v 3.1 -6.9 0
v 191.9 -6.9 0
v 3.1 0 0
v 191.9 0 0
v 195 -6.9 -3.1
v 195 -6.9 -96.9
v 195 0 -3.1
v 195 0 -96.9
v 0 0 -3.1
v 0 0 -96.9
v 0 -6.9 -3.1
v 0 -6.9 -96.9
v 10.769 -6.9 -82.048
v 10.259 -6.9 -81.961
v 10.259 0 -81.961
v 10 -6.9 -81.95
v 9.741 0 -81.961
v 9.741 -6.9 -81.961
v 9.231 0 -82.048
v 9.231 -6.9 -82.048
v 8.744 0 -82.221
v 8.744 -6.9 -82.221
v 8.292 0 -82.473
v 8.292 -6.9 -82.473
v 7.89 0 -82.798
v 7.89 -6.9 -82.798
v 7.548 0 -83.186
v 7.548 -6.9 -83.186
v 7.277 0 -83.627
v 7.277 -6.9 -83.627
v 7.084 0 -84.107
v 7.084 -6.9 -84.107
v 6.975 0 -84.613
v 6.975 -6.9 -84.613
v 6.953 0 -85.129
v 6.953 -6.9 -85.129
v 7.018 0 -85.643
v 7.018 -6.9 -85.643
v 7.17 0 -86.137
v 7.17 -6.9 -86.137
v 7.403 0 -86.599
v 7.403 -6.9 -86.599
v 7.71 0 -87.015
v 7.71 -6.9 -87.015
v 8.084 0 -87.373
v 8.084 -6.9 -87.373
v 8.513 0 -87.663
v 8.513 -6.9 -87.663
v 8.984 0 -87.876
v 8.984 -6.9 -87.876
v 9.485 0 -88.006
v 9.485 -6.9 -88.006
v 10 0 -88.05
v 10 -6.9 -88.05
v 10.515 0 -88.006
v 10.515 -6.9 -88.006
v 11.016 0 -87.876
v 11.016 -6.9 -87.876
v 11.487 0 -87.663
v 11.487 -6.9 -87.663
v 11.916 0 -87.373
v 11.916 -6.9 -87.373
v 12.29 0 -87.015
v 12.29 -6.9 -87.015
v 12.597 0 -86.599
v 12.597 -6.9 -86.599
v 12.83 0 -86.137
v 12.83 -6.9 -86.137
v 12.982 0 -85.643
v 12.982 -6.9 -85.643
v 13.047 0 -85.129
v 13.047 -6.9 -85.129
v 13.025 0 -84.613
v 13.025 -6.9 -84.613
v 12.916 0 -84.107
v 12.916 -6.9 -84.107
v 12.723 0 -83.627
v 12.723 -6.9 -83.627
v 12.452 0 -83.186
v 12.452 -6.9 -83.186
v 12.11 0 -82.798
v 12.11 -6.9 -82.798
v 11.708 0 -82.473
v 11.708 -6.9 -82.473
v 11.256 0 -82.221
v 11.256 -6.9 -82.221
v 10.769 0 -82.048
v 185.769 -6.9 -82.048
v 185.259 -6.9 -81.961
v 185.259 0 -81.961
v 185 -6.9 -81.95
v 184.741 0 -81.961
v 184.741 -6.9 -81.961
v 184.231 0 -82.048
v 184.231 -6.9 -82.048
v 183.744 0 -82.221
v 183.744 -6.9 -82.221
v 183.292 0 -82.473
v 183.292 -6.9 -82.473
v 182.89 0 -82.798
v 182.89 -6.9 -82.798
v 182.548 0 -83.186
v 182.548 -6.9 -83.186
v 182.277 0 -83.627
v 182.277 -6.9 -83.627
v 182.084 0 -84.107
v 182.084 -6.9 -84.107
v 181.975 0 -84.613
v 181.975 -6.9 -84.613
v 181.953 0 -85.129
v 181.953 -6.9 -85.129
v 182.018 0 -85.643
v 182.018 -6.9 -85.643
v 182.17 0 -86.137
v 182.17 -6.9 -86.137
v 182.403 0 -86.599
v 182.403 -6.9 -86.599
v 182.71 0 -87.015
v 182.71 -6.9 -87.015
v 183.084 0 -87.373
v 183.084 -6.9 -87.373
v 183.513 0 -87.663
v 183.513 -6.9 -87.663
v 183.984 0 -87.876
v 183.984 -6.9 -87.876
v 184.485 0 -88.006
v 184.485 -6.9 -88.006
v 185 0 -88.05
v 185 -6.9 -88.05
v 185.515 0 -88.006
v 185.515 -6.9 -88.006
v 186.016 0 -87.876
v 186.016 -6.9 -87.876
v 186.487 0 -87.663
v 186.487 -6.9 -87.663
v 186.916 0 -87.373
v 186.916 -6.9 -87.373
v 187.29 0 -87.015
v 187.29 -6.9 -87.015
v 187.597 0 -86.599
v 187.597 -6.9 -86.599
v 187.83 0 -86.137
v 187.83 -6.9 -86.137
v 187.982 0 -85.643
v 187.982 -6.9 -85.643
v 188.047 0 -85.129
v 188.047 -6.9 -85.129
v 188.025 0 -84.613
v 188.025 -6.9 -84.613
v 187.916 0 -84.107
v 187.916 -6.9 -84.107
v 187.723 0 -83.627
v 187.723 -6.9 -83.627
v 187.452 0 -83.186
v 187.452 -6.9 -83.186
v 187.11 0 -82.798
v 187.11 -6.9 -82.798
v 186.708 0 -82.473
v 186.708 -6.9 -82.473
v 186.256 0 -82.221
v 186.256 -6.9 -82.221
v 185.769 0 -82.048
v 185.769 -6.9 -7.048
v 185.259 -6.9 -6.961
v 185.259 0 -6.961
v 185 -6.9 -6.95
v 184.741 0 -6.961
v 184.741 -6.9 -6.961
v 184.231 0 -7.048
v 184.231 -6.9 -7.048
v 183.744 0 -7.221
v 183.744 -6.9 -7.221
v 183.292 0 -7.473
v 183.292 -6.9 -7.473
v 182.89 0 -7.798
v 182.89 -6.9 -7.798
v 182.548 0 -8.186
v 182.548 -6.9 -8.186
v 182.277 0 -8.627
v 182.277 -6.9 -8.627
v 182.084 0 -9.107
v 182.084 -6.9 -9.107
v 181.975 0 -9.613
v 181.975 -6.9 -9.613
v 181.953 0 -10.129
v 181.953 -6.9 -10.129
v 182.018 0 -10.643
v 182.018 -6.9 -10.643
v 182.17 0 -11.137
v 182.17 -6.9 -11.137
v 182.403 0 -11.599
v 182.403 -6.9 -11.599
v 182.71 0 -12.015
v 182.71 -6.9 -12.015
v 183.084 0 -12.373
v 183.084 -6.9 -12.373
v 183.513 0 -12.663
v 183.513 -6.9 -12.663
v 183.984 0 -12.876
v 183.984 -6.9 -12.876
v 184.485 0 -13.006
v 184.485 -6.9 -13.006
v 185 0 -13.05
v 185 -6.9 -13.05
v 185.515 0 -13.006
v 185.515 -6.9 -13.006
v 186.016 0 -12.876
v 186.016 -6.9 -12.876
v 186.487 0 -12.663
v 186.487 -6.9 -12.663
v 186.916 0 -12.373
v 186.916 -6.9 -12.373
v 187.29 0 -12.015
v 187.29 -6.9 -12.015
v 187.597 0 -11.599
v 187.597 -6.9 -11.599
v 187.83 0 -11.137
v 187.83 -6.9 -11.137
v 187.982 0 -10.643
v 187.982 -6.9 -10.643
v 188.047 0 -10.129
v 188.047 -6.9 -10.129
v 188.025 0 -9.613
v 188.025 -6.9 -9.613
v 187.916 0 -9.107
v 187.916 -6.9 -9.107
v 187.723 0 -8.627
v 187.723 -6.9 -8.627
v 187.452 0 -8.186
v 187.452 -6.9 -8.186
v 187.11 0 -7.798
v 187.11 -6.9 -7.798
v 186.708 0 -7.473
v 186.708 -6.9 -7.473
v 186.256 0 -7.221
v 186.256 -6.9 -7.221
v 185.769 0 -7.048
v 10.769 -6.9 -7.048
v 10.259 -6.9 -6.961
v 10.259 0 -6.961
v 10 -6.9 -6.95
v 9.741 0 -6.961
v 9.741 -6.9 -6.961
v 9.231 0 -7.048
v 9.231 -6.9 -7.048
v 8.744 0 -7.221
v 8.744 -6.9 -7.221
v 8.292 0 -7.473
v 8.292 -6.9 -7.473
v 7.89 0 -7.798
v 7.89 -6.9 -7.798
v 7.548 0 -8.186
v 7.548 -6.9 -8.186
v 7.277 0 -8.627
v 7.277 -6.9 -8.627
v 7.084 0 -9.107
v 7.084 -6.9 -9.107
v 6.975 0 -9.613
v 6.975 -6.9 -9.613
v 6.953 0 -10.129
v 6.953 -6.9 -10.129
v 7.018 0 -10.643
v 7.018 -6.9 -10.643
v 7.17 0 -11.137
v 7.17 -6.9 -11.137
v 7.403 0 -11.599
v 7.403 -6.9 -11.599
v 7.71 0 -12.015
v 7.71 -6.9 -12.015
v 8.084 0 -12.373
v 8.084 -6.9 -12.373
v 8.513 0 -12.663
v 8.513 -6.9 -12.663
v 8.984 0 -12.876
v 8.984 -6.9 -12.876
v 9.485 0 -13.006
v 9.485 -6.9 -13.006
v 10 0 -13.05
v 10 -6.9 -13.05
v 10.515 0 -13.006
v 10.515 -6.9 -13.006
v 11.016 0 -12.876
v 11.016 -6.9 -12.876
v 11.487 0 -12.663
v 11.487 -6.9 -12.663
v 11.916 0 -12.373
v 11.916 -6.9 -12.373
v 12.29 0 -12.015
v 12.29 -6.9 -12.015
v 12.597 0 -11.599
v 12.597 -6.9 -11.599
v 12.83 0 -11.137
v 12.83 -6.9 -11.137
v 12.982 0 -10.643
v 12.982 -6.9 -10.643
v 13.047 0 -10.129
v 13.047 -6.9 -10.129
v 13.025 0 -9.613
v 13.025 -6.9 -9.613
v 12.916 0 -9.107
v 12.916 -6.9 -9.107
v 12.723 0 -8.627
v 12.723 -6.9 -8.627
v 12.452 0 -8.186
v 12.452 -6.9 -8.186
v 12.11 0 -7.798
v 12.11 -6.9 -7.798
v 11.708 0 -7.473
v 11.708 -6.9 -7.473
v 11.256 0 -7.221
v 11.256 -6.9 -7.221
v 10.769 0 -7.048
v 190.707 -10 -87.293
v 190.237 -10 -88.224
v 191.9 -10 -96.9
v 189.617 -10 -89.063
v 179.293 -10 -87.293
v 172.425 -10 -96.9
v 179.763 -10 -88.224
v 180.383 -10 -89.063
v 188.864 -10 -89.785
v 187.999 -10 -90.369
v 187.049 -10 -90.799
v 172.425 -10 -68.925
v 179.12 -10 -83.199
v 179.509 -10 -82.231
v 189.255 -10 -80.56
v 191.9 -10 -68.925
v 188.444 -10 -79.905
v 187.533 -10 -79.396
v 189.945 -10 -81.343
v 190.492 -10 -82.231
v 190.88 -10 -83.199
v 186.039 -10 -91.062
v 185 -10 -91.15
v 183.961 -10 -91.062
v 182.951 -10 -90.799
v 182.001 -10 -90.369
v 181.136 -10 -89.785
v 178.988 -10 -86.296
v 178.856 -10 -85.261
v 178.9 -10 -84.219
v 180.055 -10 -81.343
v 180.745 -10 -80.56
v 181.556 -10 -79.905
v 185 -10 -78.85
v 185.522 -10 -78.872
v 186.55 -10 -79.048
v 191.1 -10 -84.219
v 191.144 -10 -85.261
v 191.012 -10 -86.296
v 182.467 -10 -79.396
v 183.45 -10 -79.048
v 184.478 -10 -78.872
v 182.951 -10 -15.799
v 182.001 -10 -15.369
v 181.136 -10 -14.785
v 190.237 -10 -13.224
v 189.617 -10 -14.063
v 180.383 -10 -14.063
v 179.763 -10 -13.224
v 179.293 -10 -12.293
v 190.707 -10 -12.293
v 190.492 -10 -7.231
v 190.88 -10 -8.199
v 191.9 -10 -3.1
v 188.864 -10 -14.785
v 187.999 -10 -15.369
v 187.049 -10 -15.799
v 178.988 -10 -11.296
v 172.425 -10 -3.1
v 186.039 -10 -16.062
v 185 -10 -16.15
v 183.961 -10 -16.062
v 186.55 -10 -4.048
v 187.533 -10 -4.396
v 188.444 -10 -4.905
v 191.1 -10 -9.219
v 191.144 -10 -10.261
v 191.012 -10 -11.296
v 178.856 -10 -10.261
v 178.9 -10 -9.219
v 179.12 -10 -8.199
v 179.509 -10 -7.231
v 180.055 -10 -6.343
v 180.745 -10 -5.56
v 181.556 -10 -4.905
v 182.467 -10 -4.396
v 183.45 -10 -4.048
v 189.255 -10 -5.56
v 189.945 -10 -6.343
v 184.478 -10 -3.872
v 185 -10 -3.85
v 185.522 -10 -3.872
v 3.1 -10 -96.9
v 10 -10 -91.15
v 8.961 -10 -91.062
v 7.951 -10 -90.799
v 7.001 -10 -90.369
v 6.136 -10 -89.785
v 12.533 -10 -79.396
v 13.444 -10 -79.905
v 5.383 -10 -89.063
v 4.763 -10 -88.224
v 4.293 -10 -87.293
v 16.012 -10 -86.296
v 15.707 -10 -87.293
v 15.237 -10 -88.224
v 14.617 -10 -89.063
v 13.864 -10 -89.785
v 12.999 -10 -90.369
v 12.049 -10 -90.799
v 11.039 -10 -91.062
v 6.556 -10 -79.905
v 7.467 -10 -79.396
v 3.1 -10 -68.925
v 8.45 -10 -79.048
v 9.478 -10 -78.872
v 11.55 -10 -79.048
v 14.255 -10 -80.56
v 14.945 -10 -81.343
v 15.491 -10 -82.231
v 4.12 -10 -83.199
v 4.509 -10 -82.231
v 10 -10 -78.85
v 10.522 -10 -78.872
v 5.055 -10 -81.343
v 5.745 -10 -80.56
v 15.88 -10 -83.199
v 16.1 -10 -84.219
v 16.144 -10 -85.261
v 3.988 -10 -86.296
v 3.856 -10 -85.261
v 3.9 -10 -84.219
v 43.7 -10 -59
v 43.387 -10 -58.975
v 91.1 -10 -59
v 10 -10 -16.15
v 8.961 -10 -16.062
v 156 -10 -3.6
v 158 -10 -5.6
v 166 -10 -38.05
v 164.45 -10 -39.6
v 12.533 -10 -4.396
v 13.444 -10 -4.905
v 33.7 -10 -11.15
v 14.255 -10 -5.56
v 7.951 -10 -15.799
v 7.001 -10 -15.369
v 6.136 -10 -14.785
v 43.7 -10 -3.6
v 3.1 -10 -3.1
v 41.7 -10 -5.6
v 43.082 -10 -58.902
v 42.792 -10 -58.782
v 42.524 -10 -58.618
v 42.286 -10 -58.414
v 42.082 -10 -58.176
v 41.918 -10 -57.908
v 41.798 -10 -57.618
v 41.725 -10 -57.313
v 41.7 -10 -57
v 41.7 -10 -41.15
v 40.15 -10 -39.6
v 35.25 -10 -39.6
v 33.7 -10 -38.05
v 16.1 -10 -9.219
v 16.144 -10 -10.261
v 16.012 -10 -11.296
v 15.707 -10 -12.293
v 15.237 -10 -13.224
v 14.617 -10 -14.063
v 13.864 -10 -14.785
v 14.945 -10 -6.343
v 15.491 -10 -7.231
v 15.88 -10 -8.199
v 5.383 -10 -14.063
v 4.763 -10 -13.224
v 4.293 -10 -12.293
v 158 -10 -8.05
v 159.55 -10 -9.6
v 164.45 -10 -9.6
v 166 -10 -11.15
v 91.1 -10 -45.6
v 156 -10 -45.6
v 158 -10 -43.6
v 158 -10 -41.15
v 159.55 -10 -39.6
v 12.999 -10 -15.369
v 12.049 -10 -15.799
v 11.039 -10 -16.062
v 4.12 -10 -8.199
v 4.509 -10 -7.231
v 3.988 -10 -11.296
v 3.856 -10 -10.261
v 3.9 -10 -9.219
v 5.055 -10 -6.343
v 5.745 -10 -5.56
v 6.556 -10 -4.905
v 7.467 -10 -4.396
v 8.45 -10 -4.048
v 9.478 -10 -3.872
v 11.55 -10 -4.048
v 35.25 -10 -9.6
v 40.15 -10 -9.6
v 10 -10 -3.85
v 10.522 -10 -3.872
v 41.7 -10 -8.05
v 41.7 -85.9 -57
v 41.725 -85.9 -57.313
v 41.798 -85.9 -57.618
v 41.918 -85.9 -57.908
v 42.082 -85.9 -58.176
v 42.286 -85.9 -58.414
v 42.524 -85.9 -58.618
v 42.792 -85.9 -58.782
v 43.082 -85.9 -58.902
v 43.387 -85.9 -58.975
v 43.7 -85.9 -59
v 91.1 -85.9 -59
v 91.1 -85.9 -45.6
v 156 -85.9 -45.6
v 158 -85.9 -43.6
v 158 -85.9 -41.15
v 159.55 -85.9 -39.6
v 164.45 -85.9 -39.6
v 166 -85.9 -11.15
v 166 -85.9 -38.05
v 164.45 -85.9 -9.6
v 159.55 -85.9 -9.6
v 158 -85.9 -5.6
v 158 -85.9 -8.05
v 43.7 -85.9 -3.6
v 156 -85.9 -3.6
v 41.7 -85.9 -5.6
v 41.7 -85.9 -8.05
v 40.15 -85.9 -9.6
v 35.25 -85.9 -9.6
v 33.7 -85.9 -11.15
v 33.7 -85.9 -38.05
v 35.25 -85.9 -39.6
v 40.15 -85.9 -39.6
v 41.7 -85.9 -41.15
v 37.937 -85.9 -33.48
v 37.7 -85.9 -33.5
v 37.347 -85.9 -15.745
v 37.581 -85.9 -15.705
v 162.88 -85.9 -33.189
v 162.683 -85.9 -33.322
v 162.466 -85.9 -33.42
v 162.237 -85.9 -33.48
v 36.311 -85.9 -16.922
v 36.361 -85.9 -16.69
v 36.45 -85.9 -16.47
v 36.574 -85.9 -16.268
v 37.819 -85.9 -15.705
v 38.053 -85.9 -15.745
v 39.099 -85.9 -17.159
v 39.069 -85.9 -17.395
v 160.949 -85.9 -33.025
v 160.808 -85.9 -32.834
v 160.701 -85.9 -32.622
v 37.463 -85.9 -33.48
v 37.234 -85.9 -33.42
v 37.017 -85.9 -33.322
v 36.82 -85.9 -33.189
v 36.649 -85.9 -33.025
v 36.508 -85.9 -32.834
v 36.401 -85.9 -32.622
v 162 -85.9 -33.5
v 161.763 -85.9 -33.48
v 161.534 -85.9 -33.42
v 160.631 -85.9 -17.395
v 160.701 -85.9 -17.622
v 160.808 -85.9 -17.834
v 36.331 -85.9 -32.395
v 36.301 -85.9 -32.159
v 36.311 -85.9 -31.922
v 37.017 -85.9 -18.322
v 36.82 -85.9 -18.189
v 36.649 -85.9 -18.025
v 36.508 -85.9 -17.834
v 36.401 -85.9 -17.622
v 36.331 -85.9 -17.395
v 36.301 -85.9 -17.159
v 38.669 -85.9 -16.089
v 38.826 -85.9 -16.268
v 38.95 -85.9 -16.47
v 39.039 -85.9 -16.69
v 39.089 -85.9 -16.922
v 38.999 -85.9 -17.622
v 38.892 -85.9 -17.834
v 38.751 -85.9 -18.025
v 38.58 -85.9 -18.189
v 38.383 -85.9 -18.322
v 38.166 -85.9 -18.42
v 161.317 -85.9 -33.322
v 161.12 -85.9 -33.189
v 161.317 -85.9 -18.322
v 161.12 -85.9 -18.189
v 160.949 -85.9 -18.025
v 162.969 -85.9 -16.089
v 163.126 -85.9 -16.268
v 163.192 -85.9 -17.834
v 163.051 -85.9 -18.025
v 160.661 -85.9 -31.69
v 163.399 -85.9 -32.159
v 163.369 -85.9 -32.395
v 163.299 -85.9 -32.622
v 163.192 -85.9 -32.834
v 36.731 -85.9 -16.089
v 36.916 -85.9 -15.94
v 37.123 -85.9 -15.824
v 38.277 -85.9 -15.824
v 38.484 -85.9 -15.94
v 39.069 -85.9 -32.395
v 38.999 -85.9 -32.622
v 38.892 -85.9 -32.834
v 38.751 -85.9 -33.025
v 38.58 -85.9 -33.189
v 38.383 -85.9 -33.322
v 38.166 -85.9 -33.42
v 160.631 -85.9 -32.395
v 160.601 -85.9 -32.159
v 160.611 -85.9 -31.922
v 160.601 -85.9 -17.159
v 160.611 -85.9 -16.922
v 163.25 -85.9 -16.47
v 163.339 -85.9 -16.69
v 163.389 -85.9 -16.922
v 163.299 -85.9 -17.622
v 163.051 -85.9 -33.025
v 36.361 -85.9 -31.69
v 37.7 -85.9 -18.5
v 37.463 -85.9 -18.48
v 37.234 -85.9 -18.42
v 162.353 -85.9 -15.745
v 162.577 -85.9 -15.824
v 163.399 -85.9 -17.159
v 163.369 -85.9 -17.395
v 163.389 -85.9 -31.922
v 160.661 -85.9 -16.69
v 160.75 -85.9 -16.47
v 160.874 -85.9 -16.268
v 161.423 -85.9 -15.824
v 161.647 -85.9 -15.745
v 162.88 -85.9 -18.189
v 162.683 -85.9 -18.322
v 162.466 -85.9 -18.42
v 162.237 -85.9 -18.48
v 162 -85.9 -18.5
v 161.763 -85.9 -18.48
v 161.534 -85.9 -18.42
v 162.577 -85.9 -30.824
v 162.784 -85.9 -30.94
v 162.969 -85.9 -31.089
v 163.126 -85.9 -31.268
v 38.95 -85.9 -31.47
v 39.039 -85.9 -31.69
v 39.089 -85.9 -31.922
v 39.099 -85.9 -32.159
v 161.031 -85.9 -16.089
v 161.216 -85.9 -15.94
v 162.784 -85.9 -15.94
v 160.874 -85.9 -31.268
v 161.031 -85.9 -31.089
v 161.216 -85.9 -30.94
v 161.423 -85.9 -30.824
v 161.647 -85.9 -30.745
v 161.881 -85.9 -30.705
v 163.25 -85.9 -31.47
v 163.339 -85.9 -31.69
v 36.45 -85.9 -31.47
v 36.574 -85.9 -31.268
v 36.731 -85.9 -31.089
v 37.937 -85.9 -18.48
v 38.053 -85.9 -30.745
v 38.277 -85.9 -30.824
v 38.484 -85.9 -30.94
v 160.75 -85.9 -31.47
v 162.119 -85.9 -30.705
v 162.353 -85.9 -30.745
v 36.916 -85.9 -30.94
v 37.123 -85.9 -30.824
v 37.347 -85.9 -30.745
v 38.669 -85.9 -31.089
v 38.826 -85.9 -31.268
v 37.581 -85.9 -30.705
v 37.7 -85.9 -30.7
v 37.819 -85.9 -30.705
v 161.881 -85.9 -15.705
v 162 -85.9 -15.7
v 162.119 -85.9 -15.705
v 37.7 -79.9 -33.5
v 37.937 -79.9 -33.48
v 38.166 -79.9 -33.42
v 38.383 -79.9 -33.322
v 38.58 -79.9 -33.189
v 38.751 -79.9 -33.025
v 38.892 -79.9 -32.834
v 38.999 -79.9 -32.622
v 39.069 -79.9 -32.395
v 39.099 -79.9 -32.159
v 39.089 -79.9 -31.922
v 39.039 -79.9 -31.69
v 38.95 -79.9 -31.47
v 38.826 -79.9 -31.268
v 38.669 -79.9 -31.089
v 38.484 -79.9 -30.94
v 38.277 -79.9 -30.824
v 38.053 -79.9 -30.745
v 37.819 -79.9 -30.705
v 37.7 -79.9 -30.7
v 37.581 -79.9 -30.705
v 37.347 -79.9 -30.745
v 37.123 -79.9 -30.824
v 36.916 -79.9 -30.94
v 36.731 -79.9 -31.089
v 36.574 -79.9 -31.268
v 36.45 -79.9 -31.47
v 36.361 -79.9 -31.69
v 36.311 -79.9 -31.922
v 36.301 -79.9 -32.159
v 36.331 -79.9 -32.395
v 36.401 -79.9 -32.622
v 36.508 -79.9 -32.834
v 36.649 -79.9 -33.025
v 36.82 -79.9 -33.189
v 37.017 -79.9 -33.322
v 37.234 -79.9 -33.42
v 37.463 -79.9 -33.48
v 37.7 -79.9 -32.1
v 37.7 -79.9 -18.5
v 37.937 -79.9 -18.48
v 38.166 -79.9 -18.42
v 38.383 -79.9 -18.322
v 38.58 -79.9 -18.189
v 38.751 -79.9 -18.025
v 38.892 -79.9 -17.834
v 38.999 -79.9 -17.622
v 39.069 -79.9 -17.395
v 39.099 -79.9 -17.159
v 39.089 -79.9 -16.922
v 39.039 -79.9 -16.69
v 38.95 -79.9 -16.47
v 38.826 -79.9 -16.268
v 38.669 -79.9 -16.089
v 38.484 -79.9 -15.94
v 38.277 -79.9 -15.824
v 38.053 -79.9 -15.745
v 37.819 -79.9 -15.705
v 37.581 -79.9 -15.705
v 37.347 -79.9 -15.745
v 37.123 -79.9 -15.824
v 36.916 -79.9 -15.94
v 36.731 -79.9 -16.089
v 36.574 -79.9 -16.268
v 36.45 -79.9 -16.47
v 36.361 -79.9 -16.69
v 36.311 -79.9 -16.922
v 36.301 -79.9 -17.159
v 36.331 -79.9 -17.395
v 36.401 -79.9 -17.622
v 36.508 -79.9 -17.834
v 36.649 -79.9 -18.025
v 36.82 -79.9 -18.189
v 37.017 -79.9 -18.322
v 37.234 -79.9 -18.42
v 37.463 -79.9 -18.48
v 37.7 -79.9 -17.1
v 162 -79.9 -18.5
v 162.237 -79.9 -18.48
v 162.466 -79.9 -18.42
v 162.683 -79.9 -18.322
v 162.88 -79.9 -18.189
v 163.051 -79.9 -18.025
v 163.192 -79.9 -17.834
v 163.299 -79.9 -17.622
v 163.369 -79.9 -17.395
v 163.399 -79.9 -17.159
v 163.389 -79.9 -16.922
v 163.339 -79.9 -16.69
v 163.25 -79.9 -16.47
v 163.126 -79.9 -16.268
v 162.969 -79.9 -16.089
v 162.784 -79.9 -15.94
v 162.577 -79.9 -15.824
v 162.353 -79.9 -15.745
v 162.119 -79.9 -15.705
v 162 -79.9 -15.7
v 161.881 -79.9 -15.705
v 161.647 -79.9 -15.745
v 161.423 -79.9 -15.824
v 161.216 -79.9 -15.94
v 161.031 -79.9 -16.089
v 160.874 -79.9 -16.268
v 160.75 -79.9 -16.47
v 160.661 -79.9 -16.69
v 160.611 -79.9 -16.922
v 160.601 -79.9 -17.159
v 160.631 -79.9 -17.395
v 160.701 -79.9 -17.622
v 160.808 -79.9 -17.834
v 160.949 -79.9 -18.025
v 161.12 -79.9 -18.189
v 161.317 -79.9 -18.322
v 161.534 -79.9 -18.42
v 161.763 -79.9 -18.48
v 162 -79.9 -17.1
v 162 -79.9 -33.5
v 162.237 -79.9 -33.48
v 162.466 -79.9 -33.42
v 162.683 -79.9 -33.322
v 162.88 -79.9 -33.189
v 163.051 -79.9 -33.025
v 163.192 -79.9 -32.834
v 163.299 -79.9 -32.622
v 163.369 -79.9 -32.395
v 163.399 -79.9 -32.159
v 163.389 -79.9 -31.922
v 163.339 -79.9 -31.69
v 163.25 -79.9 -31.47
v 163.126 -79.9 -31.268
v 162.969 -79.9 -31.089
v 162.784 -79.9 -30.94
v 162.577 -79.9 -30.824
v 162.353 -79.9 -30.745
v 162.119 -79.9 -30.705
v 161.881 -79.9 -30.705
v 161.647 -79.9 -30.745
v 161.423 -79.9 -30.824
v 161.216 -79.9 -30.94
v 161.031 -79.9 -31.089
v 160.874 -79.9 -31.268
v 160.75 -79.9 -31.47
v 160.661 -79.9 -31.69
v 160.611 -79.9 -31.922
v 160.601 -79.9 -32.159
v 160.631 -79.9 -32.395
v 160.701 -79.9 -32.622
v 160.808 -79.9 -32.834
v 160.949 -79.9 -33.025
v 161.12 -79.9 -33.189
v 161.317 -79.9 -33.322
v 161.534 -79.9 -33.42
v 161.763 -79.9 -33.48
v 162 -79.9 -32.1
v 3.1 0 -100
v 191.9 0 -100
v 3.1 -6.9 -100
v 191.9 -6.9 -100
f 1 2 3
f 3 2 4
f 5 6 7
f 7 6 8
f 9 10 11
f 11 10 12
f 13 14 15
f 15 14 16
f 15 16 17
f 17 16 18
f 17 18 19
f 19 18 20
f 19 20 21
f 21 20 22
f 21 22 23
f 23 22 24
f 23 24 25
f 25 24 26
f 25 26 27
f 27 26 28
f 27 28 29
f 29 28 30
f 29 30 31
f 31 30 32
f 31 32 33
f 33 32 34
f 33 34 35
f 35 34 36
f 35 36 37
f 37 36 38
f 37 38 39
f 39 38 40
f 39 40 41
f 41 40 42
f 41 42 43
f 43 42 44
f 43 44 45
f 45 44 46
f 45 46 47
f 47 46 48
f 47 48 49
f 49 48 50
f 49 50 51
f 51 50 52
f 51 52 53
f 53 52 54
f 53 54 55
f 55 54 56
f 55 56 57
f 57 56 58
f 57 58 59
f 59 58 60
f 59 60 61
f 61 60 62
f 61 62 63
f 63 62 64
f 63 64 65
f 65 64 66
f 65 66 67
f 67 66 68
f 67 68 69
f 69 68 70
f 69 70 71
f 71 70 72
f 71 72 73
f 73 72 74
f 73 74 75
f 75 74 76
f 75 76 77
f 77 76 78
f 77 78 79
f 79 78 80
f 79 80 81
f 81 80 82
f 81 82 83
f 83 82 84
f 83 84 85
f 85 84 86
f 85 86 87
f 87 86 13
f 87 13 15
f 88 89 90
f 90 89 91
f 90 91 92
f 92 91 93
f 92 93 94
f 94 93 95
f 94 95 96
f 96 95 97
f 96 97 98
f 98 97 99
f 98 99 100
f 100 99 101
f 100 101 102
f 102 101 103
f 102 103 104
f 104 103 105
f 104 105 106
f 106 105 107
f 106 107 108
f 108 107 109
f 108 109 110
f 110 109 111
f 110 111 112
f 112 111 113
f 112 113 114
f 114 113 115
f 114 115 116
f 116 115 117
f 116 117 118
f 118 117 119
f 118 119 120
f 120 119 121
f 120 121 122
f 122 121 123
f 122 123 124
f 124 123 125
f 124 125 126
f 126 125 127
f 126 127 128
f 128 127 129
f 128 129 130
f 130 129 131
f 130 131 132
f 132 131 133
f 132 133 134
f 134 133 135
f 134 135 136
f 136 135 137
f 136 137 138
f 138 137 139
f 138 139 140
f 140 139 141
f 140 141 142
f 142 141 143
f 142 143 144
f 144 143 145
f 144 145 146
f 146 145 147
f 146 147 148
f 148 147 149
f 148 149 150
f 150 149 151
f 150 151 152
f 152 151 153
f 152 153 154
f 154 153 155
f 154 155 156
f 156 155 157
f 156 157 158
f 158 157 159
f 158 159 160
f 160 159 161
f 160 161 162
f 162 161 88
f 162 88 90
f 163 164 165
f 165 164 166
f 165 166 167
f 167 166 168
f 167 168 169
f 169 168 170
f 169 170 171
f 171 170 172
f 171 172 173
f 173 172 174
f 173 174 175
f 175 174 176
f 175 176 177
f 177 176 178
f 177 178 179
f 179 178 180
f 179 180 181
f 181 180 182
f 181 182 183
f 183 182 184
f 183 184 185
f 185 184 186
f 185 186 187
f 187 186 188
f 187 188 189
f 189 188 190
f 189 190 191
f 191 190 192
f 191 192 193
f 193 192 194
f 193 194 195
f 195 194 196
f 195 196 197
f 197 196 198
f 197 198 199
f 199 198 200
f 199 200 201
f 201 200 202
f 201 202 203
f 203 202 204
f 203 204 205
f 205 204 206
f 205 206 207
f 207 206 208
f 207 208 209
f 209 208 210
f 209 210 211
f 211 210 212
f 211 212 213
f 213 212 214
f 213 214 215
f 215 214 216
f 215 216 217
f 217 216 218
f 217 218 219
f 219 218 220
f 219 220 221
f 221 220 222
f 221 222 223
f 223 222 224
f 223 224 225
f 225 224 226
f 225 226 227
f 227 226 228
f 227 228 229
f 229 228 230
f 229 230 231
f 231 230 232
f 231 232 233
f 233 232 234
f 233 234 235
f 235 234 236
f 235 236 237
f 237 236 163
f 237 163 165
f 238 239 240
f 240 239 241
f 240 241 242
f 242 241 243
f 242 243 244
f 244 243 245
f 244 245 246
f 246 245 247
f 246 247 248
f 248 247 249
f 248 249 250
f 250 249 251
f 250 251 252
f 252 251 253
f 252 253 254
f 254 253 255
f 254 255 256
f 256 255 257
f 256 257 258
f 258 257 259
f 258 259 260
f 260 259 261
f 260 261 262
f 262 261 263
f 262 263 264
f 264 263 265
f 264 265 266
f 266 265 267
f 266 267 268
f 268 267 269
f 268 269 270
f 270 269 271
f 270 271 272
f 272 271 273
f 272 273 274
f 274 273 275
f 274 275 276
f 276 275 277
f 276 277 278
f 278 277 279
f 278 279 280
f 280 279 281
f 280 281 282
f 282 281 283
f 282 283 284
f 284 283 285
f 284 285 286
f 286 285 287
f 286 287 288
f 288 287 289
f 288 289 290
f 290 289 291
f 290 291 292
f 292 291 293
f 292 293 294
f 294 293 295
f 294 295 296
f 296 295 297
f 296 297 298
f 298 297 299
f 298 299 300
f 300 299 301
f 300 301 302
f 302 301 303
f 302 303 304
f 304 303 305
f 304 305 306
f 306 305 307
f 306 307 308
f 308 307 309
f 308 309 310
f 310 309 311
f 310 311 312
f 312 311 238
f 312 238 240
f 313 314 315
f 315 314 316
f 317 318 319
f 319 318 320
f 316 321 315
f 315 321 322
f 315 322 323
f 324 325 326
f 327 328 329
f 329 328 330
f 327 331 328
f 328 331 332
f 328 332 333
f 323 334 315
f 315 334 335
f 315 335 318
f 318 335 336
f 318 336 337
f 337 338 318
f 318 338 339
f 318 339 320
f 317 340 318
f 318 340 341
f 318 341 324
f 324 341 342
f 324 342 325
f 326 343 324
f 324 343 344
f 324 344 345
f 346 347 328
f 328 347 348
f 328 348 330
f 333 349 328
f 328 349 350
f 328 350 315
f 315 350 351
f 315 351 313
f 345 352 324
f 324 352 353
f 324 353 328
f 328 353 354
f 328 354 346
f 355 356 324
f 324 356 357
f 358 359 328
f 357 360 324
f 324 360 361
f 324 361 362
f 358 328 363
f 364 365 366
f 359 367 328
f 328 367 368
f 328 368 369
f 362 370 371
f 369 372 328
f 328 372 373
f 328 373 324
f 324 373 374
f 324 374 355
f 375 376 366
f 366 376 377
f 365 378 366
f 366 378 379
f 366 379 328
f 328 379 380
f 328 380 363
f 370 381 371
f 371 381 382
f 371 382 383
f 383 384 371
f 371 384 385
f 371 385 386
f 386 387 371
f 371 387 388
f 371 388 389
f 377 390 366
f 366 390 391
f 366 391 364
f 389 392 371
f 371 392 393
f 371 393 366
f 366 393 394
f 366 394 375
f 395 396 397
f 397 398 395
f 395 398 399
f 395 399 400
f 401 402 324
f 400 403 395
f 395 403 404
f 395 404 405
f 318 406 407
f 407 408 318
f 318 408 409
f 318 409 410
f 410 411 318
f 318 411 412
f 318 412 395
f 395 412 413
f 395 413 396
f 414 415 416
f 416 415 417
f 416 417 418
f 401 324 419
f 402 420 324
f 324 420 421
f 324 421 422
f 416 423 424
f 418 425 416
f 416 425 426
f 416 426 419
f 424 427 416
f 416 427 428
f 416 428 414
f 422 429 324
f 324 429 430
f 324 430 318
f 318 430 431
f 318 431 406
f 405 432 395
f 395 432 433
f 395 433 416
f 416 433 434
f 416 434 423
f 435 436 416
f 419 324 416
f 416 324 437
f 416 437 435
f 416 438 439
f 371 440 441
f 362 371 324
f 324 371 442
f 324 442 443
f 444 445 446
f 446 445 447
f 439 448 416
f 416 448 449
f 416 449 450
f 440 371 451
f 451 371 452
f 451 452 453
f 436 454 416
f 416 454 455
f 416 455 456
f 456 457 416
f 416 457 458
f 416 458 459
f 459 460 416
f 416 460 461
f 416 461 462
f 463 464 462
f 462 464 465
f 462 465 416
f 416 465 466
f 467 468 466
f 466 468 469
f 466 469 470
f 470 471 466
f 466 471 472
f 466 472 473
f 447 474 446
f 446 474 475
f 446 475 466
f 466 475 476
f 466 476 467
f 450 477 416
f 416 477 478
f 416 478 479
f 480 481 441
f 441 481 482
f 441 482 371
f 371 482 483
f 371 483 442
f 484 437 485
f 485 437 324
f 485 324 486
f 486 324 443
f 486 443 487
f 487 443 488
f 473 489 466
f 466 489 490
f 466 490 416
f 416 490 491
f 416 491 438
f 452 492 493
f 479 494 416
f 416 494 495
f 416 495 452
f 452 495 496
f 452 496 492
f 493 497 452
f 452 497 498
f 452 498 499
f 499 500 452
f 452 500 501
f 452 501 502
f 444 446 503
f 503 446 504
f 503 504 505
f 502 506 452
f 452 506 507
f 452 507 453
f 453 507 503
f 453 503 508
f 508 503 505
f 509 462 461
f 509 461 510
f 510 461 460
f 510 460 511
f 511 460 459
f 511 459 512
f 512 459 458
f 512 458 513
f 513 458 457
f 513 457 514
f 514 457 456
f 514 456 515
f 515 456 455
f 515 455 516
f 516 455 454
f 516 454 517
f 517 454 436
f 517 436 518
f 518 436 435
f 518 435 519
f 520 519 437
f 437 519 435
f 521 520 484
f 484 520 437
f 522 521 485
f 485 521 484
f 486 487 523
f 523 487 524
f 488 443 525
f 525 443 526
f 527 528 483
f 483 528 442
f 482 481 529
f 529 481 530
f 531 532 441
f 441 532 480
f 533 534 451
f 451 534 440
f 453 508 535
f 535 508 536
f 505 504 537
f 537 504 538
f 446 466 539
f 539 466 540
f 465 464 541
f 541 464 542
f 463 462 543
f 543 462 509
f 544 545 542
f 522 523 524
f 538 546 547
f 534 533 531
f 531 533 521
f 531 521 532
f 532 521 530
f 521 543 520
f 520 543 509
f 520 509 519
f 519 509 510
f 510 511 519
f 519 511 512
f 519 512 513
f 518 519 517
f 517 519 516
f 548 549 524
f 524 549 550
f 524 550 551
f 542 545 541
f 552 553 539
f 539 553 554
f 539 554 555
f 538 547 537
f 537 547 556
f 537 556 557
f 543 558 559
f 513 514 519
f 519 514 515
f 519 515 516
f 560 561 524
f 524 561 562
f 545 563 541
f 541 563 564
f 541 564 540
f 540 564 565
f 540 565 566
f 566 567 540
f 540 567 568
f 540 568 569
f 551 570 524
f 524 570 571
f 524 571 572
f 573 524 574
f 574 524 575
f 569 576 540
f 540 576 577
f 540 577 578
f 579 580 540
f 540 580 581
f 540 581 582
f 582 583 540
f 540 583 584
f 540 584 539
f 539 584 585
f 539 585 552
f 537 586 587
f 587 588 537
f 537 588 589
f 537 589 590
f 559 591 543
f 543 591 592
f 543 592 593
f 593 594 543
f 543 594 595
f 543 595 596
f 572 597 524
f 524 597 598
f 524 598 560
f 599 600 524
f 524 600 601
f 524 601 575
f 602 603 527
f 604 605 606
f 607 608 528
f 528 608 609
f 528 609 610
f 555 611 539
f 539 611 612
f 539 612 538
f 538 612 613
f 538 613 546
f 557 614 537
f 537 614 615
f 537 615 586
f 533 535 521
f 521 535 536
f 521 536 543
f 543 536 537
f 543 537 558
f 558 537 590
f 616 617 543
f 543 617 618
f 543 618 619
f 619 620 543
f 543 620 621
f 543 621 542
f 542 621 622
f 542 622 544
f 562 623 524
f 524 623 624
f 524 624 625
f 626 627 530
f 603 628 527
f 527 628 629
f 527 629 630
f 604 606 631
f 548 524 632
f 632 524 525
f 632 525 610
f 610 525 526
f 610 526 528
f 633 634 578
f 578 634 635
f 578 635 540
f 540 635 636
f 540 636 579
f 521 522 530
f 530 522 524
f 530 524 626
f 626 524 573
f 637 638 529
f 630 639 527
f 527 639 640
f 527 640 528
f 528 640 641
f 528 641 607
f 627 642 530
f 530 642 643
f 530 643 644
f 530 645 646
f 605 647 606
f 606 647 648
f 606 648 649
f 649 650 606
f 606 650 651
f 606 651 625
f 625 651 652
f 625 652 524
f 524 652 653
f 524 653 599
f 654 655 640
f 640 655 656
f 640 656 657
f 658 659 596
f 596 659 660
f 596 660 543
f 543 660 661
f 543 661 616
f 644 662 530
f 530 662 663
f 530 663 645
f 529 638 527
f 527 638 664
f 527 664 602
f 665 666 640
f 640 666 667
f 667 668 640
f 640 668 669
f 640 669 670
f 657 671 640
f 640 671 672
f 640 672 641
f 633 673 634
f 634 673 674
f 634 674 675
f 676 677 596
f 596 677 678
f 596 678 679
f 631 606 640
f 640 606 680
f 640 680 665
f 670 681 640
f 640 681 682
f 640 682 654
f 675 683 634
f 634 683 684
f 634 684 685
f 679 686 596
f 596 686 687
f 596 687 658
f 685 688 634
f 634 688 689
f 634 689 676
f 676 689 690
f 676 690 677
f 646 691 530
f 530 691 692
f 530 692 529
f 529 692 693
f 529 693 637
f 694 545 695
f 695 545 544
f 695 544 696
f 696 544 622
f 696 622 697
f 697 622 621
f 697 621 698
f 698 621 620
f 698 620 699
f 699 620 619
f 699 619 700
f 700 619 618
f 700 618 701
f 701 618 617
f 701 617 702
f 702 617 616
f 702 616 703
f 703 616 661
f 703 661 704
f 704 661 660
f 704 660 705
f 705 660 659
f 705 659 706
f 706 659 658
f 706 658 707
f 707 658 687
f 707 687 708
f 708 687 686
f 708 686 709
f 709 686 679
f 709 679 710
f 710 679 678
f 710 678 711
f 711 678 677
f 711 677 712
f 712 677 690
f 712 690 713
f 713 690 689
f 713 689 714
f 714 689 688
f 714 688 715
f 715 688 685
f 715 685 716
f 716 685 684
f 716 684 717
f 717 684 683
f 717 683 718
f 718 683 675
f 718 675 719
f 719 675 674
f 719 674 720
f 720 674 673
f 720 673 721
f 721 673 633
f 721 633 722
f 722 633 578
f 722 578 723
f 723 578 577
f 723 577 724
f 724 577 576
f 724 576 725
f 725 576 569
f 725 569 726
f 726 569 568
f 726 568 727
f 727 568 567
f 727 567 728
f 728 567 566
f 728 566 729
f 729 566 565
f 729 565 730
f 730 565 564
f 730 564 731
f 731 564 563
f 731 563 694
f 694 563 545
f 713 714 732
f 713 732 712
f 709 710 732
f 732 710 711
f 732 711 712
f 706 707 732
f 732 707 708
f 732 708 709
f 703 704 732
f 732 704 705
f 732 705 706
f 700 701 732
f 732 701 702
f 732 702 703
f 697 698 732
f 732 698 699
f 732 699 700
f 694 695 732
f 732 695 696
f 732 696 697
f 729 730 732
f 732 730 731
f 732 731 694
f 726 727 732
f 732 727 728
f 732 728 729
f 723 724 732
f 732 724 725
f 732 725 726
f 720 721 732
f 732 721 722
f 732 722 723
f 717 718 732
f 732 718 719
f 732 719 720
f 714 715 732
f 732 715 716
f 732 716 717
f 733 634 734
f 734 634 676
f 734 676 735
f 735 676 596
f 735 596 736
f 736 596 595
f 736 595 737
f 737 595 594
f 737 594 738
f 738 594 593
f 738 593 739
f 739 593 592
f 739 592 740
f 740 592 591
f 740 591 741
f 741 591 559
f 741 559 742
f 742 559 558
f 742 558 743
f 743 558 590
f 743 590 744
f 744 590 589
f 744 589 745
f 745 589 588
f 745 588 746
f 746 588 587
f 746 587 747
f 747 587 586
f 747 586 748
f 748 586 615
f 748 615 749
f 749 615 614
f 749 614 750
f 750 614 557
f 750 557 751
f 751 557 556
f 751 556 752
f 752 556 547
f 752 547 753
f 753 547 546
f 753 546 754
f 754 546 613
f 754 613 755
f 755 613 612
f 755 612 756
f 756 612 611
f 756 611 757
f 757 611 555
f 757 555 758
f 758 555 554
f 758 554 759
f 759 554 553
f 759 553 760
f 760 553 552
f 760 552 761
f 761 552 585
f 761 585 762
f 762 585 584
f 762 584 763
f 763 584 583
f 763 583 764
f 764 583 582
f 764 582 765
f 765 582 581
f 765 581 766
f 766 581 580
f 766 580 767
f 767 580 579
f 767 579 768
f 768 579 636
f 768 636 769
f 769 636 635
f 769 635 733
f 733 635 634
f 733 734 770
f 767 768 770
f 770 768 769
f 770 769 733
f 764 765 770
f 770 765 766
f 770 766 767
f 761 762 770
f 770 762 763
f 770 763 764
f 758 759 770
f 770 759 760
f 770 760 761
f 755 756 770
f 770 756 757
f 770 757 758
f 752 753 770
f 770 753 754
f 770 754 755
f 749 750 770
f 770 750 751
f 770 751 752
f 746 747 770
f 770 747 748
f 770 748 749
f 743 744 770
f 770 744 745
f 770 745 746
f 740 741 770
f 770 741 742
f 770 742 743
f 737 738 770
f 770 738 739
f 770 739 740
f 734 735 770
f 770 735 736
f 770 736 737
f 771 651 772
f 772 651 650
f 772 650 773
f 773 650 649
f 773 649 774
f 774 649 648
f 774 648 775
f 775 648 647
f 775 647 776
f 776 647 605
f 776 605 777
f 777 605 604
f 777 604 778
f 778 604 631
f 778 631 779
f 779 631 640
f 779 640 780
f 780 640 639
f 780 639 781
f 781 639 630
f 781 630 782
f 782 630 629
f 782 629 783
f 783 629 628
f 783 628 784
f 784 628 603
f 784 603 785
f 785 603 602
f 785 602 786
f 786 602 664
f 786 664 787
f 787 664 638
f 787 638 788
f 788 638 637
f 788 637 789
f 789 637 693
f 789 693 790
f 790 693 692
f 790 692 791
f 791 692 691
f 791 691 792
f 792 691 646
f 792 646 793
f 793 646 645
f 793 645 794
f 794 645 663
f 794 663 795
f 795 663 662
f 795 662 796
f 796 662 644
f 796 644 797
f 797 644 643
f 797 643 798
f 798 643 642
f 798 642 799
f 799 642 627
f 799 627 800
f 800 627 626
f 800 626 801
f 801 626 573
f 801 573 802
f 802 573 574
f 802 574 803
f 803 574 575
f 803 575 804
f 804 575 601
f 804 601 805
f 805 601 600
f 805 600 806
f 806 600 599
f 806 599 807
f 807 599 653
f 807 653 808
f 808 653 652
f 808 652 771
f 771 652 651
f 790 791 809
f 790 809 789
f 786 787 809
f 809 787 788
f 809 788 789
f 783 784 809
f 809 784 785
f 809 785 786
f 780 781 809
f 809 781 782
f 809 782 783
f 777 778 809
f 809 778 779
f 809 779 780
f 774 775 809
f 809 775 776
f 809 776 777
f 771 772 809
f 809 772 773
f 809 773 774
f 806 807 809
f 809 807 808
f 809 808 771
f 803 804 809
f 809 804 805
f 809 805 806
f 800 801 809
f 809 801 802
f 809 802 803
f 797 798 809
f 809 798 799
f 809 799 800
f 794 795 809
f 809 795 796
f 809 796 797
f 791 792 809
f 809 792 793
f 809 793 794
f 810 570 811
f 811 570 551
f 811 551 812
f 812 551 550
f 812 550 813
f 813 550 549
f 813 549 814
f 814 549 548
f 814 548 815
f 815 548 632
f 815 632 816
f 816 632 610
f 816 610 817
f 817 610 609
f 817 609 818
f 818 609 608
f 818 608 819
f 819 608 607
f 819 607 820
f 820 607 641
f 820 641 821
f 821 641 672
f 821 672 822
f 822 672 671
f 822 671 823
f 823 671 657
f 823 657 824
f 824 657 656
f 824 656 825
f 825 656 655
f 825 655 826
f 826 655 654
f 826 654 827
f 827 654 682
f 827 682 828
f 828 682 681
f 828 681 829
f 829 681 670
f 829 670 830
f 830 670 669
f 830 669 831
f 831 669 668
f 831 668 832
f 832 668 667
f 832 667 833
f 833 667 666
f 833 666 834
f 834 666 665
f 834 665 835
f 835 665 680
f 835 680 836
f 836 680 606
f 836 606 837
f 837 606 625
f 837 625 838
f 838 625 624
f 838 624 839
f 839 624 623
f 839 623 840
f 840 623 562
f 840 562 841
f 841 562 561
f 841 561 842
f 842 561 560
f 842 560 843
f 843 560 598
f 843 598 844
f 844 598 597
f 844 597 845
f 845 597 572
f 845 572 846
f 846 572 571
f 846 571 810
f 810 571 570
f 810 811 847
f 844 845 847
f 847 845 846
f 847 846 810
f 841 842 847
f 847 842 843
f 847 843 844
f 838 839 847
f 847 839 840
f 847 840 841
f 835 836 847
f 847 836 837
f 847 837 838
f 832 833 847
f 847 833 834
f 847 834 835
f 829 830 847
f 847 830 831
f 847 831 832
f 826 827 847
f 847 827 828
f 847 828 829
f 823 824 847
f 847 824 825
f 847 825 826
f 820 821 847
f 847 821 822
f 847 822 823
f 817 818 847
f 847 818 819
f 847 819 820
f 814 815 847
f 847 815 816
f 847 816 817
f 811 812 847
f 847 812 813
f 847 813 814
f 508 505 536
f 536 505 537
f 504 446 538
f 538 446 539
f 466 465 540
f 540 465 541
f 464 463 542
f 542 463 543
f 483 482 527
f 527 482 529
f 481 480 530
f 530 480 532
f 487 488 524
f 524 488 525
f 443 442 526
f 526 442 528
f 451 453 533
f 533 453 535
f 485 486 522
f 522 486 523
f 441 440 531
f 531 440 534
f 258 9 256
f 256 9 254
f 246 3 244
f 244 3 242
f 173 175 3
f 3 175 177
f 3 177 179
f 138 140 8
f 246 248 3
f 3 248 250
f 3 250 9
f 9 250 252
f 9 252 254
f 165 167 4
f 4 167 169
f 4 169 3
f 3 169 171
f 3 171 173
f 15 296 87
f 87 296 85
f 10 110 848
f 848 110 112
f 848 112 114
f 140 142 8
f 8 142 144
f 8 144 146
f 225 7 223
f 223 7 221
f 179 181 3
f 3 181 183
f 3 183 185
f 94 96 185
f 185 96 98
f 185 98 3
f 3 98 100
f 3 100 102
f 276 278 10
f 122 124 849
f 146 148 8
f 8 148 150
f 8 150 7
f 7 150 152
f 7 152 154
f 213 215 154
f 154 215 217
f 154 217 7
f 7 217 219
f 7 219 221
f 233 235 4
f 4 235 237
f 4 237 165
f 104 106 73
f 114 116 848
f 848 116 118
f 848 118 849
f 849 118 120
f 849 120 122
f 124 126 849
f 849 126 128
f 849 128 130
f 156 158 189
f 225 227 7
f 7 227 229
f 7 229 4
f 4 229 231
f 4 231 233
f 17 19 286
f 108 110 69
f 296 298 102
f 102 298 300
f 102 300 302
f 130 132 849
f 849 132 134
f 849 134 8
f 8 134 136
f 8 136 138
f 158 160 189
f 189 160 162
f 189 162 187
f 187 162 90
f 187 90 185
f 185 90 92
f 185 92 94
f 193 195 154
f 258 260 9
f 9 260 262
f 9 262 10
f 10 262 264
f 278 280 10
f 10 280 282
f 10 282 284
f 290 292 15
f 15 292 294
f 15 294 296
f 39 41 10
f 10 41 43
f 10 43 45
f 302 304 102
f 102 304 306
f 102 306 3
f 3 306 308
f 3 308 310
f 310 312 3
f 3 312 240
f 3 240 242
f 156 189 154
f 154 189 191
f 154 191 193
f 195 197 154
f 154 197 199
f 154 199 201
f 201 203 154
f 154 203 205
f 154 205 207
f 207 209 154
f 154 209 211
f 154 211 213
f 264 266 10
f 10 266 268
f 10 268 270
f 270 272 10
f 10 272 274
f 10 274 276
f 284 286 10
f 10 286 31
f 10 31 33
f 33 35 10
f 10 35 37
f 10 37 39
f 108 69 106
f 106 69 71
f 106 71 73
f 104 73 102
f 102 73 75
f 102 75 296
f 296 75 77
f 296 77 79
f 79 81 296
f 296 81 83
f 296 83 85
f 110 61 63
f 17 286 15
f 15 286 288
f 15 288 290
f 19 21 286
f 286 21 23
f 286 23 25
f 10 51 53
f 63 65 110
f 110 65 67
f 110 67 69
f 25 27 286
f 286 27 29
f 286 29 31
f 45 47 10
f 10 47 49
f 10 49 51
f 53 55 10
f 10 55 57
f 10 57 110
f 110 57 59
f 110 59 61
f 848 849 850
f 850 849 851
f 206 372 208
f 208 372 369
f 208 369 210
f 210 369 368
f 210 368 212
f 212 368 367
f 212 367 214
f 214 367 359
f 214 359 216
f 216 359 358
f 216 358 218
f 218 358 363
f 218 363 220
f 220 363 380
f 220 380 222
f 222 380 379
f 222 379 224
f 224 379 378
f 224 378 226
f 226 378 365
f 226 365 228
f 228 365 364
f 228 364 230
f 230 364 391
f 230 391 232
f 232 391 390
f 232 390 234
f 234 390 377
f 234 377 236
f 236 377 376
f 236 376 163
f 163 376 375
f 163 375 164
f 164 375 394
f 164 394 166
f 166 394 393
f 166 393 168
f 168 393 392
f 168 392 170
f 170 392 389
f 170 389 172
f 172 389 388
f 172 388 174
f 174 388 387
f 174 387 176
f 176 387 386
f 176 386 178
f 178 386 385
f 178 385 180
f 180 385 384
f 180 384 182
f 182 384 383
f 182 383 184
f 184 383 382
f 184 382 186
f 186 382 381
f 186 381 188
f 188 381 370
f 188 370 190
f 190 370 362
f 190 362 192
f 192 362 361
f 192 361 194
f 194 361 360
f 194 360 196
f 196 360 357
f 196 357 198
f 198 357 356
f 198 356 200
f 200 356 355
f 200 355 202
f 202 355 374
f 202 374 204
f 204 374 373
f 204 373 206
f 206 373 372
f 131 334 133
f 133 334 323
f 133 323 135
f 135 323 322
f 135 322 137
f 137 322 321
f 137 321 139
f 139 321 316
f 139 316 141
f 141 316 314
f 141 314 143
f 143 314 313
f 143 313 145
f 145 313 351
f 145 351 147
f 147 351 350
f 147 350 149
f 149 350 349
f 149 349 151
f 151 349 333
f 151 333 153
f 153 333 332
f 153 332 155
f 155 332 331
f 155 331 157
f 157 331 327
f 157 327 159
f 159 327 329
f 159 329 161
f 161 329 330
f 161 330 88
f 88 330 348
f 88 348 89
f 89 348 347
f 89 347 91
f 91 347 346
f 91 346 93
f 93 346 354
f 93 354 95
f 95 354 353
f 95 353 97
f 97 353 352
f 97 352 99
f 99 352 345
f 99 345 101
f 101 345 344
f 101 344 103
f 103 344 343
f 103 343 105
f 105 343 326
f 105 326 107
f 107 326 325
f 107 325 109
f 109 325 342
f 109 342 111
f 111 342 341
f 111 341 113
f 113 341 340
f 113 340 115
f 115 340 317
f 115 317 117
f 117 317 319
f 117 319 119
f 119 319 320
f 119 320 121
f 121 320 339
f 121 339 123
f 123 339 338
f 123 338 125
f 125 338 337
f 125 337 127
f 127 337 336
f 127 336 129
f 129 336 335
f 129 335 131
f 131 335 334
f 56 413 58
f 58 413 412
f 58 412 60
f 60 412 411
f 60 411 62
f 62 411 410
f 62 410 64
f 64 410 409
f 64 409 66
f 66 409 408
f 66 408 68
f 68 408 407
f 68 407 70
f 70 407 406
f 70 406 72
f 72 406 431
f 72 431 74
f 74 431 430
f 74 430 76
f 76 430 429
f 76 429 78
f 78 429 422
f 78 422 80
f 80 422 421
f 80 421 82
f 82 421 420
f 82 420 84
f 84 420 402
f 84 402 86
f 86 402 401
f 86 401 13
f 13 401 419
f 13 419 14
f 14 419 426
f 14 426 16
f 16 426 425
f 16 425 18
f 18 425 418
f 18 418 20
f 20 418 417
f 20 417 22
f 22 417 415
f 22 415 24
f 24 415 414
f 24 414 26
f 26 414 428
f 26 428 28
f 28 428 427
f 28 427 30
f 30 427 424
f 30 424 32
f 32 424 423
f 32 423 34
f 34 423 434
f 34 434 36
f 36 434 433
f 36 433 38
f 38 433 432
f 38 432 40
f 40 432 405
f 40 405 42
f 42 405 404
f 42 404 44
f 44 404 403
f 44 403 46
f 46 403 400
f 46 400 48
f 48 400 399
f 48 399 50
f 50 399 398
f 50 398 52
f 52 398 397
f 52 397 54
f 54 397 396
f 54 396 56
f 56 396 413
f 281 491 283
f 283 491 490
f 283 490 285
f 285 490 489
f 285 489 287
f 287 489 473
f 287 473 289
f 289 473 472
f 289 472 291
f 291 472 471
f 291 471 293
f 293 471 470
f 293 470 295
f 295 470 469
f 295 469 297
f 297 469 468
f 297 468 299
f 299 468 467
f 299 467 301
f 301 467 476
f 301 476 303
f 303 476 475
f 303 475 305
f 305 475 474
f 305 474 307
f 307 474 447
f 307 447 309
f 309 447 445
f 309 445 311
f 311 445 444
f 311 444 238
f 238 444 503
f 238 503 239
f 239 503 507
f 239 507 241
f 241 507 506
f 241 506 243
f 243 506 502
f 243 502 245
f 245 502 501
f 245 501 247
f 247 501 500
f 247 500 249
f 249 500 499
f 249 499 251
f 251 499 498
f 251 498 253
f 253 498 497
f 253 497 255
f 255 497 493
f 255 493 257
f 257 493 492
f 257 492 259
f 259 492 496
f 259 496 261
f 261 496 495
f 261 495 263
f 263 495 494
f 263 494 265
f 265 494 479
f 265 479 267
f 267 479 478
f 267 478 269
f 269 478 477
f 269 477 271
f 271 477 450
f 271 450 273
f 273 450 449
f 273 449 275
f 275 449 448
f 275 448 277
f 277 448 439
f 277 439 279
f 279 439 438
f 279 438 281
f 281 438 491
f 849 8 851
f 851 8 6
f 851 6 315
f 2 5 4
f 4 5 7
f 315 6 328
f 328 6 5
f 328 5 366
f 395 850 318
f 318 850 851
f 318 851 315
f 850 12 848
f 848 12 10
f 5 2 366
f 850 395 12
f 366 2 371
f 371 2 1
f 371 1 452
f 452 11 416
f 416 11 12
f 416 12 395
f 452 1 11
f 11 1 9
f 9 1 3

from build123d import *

# Parameters (mm, degrees)
SKETCH1_R                = 3.05
BOSS_EXTRUDE1_DEPTH      = 10
BOSS_EXTRUDE2_DEPTH      = 75.9
SKETCH3_R                = 1.4
CUT_EXTRUDE1_DEPTH       = 6
CHAMFER1_SIZE            = 1.55
CHAMFER2_SIZE            = 2
CHAMFER1_OF_MIRROR1_SIZE = 1.55
CHAMFER2_OF_MIRROR1_SIZE = 2
SKETCH4_W                = 135.019613606
SKETCH4_H                = 106.174514336
CUT_EXTRUDE2_DEPTH       = 236.5929965
SKETCH5_W                = 195
SKETCH5_H                = 0.5
CUT_EXTRUDE3_DEPTH       = 233.133711468
CHAMFER3_SIZE            = 3.1
CHAMFER4_SIZE            = 3.1


with BuildPart() as part:
    # Sketch1 → Boss-Extrude1 (new body)
    with BuildSketch(Plane(origin=(0, 0, 0), x_dir=(1, 0, 0), z_dir=(0, 1, 0))):
        Polygon((0, 0), (195, 0), (195, 95), (195, 100.5), (0, 100.5), (0, 95), align=None)
        with Locations((10, 85)):
            Circle(SKETCH1_R, mode=Mode.SUBTRACT)
        with Locations((185, 85)):
            Circle(SKETCH1_R, mode=Mode.SUBTRACT)
        with Locations((185, 10)):
            Circle(SKETCH1_R, mode=Mode.SUBTRACT)
        with Locations((10, 10)):
            Circle(SKETCH1_R, mode=Mode.SUBTRACT)
    boss_extrude1 = extrude(amount=BOSS_EXTRUDE1_DEPTH)

    # Sketch2 → Boss-Extrude2 (add)
    with BuildSketch(Plane(origin=(0, 10, 0), x_dir=(1, 0, 0), z_dir=(0, 1, 0))):
        with BuildLine():
            Line((43.7, 59), (91.1, 59))
            Line((91.1, 59), (91.1, 45.6))
            Line((91.1, 45.6), (158, 45.6))
            Line((158, 45.6), (158, 39.6))
            Line((158, 39.6), (166, 39.6))
            Line((166, 39.6), (166, 9.6))
            Line((166, 9.6), (158, 9.6))
            Line((158, 9.6), (158, 3.6))
            Line((158, 3.6), (41.7, 3.6))
            Line((41.7, 3.6), (41.7, 9.6))
            Line((41.7, 9.6), (33.7, 9.6))
            Line((33.7, 9.6), (33.7, 39.6))
            Line((33.7, 39.6), (41.7, 39.6))
            Line((41.7, 39.6), (41.7, 57))
            ThreePointArc((41.7, 57), (42.285786438, 58.414213562), (43.7, 59))
        make_face()
    boss_extrude2 = extrude(amount=BOSS_EXTRUDE2_DEPTH)

    # Sketch3 → Cut-Extrude1 (cut)
    with BuildSketch(Plane(origin=(0, 85.9, 0), x_dir=(1, 0, 0), z_dir=(0, 1, 0))):
        with Locations((37.7, 32.1)):
            Circle(SKETCH3_R)
        with Locations((37.7, 17.1)):
            Circle(SKETCH3_R)
        with Locations((162, 17.1)):
            Circle(SKETCH3_R)
        with Locations((162, 32.1)):
            Circle(SKETCH3_R)
    cut_extrude1 = extrude(amount=-CUT_EXTRUDE1_DEPTH, mode=Mode.SUBTRACT)

    # Chamfer1
    chamfer1_edges = [part.edges().sort_by_distance(p)[0] for p in [
        (41.7, 47.95, -9.6),
        (33.7, 47.95, -9.6),
        (33.7, 47.95, -39.6),
        (41.7, 47.95, -39.6),
        (166, 47.95, -9.6),
        (158, 47.95, -9.6),
        (158, 47.95, -39.6),
        (166, 47.95, -39.6),
    ]]
    chamfer(chamfer1_edges, length=CHAMFER1_SIZE)

    # Chamfer2
    chamfer2_edges = [part.edges().sort_by_distance(p)[0] for p in [
        (41.7, 47.95, -3.6),
        (158, 47.95, -45.6),
        (158, 47.95, -3.6),
    ]]
    chamfer(chamfer2_edges, length=CHAMFER2_SIZE)

    # Mirror1: Boss-Extrude1, Boss-Extrude2, Cut-Extrude1 across plane
    add(boss_extrude1.mirror(Plane(origin=(0, 0, 0), x_dir=(0, 0, 1), z_dir=(0, -1, 0))))
    add(boss_extrude2.mirror(Plane(origin=(0, 0, 0), x_dir=(0, 0, 1), z_dir=(0, -1, 0))))
    add(cut_extrude1.mirror(Plane(origin=(0, 0, 0), x_dir=(0, 0, 1), z_dir=(0, -1, 0))), mode=Mode.SUBTRACT)

    # Chamfer1 of Mirror1
    chamfer1_of_mirror1_edges = [part.edges().sort_by_distance(p)[0] for p in [
        (41.7, -47.95, -9.6),
        (33.7, -47.95, -9.6),
        (33.7, -47.95, -39.6),
        (41.7, -47.95, -39.6),
        (166, -47.95, -9.6),
        (158, -47.95, -9.6),
        (158, -47.95, -39.6),
        (166, -47.95, -39.6),
    ]]
    chamfer(chamfer1_of_mirror1_edges, length=CHAMFER1_OF_MIRROR1_SIZE)

    # Chamfer2 of Mirror1
    chamfer2_of_mirror1_edges = [part.edges().sort_by_distance(p)[0] for p in [
        (41.7, -47.95, -3.6),
        (158, -47.95, -45.6),
        (158, -47.95, -3.6),
    ]]
    chamfer(chamfer2_of_mirror1_edges, length=CHAMFER2_OF_MIRROR1_SIZE)

    # Sketch4 → Cut-Extrude2 (cut, through all)
    with BuildSketch(Plane.ZY):
        with Locations((-58.433006885, 53.087257168)):
            Rectangle(SKETCH4_W, SKETCH4_H)
    extrude(amount=-CUT_EXTRUDE2_DEPTH, mode=Mode.SUBTRACT)

    # Sketch5 → Cut-Extrude3 (cut, through all)
    with BuildSketch(Plane.XZ.offset(10)):
        with Locations((97.5, -100.25)):
            Rectangle(SKETCH5_W, SKETCH5_H)
    extrude(amount=-CUT_EXTRUDE3_DEPTH, mode=Mode.SUBTRACT)

    # Chamfer3
    chamfer3_edges = [part.edges().sort_by_distance(p)[0] for p in [
        (181.95, -10, -10),
        (181.95, -10, -85),
        (6.95, -10, -85),
        (6.95, -10, -10),
    ]]
    chamfer(chamfer3_edges, length=CHAMFER3_SIZE)

    # Chamfer4
    chamfer4_edges = [part.edges().sort_by_distance(p)[0] for p in [
        (0, -5, 0),
        (0, -5, -100),
        (195, -5, 0),
        (195, -5, -100),
        (195, -10, -50),
        (97.5, -10, 0),
        (97.5, -10, -100),
        (0, -10, -50),
    ]]
    chamfer(chamfer4_edges, length=CHAMFER4_SIZE)


solid = part.part
